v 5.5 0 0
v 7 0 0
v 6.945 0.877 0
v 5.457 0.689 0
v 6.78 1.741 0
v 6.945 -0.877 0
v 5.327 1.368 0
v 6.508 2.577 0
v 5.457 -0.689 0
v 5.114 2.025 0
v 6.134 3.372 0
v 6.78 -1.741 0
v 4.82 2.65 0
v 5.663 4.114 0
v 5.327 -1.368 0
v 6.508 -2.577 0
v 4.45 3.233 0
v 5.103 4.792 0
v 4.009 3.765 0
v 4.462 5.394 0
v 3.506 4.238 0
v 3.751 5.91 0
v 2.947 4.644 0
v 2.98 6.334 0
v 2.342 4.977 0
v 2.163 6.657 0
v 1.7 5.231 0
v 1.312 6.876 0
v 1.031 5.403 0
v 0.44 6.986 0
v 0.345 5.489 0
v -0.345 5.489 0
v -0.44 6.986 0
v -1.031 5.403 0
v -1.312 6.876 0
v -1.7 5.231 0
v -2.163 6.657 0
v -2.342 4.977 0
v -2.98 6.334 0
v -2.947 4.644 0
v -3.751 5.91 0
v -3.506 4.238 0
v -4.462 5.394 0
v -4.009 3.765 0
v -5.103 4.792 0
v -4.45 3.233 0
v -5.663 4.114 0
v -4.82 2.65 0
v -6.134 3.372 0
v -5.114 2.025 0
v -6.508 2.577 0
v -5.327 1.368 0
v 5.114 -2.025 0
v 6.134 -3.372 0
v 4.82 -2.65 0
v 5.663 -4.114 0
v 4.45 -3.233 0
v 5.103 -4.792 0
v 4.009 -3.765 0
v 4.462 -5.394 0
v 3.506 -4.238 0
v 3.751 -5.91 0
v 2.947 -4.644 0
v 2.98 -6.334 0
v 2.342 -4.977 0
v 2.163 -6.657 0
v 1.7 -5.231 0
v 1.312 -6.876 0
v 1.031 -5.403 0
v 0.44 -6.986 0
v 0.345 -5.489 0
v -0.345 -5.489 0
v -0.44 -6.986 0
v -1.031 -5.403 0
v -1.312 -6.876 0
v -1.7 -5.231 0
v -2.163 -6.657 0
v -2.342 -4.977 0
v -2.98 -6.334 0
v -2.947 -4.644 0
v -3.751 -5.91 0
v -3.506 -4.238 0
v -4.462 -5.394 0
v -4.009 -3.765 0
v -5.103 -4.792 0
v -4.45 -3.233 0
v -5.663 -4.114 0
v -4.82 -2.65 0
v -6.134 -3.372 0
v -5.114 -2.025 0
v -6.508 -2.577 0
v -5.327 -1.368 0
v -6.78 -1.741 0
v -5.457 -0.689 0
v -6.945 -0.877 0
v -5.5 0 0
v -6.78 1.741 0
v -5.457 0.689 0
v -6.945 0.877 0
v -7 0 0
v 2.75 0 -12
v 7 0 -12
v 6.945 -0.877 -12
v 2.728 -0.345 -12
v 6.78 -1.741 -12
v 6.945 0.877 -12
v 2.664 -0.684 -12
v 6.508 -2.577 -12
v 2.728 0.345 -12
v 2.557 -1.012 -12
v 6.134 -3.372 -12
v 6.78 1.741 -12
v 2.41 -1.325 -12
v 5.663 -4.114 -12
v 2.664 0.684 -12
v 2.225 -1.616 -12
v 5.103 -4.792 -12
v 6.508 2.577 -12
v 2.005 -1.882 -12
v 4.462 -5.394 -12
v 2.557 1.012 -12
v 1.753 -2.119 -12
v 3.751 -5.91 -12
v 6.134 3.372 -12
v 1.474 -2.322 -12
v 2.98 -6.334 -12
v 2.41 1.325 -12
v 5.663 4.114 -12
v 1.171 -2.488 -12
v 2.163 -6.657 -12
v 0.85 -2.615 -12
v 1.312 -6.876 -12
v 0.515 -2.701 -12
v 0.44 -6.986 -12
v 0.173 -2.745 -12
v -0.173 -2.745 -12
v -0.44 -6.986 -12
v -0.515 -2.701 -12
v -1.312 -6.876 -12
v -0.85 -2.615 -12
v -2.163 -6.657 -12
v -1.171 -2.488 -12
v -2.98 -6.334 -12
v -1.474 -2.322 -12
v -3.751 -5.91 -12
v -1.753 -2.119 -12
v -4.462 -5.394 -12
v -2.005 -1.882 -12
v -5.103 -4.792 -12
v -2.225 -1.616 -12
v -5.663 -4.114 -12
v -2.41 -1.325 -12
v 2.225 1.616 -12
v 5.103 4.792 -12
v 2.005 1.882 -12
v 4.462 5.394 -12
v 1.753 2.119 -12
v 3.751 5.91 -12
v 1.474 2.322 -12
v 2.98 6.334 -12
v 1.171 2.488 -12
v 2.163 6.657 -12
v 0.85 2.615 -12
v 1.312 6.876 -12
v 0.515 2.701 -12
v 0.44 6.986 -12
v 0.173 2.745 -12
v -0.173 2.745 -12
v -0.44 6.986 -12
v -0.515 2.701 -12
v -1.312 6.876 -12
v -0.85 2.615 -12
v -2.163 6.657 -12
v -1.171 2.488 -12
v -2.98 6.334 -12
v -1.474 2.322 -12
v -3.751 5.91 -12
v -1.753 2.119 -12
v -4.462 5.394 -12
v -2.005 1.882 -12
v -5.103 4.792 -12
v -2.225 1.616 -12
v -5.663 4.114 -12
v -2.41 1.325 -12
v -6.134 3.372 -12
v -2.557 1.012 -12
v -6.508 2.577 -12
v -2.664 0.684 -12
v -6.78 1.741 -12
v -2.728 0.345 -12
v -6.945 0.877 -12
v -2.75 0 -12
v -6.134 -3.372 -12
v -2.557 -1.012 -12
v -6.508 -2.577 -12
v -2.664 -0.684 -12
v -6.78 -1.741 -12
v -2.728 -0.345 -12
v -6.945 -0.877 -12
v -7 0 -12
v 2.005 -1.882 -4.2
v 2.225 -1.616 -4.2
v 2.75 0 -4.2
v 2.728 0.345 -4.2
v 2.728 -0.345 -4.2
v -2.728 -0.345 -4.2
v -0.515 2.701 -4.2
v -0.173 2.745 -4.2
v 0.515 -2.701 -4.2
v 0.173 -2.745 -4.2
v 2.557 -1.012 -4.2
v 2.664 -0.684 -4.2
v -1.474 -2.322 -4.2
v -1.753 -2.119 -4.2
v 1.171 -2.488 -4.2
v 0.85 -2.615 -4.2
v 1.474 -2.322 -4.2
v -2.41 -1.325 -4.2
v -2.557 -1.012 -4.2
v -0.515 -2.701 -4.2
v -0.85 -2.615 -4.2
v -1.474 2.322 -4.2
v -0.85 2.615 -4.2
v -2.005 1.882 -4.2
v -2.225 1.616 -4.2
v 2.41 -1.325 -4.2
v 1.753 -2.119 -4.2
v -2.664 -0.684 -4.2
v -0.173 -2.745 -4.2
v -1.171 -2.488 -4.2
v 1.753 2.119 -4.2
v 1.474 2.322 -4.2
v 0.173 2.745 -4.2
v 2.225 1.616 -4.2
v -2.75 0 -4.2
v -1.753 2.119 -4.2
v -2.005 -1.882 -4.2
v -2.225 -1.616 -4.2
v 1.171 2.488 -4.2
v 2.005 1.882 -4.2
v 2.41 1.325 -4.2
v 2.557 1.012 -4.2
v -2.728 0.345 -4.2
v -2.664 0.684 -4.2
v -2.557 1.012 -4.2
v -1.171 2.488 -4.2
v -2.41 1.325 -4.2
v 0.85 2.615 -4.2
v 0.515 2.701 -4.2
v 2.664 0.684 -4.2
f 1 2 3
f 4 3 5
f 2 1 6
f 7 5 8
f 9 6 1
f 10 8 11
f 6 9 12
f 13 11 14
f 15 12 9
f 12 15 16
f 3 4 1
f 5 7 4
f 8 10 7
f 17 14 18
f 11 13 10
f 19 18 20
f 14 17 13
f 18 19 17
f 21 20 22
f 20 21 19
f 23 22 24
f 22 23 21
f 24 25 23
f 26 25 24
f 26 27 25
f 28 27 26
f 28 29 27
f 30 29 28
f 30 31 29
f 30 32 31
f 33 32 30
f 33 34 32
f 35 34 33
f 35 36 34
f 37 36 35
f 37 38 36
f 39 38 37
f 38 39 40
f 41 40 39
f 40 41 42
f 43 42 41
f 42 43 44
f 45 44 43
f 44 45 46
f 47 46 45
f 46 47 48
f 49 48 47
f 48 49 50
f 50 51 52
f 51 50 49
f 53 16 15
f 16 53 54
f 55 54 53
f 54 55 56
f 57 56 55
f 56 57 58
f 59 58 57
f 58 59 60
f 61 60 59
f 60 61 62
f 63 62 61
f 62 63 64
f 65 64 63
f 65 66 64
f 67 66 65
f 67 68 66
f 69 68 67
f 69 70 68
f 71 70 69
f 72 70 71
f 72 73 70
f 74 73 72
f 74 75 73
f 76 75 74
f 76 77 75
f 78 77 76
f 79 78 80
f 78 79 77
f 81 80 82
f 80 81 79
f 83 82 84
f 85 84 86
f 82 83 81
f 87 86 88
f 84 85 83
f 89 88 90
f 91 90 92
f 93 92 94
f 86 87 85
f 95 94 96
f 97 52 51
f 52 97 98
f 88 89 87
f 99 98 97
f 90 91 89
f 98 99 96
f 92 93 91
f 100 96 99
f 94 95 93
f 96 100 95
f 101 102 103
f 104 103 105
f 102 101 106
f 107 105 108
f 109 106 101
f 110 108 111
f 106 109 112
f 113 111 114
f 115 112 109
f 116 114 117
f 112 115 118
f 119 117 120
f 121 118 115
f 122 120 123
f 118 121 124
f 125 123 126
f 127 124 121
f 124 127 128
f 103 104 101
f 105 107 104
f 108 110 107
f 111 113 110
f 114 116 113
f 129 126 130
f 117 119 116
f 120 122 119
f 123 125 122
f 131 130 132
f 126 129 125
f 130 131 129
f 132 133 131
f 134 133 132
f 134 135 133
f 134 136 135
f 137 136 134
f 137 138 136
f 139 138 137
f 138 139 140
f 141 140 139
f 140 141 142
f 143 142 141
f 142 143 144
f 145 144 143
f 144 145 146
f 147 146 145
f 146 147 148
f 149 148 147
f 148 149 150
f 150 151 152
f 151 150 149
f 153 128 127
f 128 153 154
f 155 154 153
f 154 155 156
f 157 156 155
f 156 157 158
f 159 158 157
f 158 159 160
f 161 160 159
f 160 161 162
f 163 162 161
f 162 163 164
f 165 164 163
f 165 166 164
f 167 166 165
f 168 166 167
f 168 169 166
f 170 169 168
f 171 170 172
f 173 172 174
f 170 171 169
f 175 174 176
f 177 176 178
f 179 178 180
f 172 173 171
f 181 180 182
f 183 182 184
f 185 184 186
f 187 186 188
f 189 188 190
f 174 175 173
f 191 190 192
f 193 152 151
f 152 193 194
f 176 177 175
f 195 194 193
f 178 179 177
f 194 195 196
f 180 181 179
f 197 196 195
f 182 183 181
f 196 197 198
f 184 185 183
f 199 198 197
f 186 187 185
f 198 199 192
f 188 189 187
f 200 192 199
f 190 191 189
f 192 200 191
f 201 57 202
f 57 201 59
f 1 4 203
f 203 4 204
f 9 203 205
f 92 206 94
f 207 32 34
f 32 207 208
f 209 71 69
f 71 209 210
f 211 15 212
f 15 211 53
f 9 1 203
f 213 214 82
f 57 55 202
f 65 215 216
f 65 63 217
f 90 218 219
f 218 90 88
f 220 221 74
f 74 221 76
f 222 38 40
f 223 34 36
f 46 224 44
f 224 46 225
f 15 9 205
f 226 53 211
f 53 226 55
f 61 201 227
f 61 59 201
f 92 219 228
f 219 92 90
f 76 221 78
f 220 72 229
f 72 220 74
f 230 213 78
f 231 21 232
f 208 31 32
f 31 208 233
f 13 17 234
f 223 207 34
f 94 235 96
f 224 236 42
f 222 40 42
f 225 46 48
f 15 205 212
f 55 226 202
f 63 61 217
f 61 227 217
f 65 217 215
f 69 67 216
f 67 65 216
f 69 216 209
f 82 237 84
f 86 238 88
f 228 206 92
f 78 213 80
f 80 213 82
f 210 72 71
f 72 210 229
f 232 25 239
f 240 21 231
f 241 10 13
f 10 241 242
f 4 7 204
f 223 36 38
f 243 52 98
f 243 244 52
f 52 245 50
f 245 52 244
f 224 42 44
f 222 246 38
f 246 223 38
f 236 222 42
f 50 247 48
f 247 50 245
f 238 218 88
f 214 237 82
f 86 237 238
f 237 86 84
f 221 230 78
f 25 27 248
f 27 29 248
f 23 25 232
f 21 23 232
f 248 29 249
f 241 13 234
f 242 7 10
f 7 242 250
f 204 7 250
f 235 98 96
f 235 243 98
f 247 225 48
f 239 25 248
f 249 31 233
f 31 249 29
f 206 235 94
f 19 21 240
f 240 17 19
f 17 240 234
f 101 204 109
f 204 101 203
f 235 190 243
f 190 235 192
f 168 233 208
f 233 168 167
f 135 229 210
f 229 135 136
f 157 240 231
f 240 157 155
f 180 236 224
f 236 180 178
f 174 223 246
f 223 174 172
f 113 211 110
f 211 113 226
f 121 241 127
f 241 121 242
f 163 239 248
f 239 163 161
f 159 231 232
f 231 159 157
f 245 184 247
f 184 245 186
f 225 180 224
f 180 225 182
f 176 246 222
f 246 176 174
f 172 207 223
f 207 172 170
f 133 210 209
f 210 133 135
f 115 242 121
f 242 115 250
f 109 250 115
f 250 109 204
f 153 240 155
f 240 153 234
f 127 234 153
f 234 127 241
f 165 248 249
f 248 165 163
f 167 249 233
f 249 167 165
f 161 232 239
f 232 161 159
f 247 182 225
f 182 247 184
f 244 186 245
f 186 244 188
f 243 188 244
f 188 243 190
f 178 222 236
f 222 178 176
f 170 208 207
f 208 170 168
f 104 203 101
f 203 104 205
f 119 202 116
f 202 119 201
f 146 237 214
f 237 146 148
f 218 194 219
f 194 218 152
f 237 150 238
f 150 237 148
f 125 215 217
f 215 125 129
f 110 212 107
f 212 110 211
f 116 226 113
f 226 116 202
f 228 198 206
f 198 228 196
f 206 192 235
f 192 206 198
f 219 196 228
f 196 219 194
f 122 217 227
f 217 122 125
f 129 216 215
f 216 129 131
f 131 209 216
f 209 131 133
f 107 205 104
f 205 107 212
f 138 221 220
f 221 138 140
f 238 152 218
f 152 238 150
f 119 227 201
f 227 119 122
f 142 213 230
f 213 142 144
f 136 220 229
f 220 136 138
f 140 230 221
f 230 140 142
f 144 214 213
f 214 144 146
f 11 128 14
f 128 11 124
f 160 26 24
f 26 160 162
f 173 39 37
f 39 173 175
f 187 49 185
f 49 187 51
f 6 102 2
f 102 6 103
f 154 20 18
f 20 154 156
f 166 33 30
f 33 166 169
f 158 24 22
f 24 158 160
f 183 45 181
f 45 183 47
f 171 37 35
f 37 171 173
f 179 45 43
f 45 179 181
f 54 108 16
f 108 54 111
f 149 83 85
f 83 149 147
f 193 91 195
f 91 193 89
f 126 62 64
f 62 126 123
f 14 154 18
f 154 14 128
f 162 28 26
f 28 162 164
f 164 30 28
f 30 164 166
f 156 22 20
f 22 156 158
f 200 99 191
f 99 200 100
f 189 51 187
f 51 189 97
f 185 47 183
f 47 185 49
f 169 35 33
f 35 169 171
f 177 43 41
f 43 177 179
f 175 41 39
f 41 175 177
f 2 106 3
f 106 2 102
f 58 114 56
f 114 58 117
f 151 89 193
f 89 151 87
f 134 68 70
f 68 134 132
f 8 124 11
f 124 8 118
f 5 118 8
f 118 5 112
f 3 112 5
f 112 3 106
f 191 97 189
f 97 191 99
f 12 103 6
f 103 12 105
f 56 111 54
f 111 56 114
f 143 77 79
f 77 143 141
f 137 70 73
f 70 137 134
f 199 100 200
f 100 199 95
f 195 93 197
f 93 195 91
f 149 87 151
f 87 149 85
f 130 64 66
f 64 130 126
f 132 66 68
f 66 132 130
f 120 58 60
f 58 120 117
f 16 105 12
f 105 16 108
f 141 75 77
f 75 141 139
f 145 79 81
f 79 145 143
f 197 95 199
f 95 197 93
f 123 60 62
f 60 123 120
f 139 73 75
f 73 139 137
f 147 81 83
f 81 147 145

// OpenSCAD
$fn = 50;


difference() {
	union() {
		translate(v = [0, 0, -12.0000000000]) {
			cylinder(h = 12, r = 7.0000000000);
		}
	}
	union() {
		translate(v = [0, 0, 0]) {
			rotate(a = [0, 0, 0]) {
				difference() {
					union() {
						#translate(v = [0, 0, -12.0000000000]) {
							cylinder(h = 12, r = 2.2500000000);
						}
						#translate(v = [0, 0, -4.2000000000]) {
							cylinder(h = 4.2000000000, r1 = 2.7500000000, r2 = 5.5000000000);
						}
						#translate(v = [0, 0, -12.0000000000]) {
							cylinder(h = 12, r = 2.7500000000);
						}
						#translate(v = [0, 0, -12.0000000000]) {
							cylinder(h = 12, r = 2.2500000000);
						}
					}
					union();
				}
			}
		}
	}
}
